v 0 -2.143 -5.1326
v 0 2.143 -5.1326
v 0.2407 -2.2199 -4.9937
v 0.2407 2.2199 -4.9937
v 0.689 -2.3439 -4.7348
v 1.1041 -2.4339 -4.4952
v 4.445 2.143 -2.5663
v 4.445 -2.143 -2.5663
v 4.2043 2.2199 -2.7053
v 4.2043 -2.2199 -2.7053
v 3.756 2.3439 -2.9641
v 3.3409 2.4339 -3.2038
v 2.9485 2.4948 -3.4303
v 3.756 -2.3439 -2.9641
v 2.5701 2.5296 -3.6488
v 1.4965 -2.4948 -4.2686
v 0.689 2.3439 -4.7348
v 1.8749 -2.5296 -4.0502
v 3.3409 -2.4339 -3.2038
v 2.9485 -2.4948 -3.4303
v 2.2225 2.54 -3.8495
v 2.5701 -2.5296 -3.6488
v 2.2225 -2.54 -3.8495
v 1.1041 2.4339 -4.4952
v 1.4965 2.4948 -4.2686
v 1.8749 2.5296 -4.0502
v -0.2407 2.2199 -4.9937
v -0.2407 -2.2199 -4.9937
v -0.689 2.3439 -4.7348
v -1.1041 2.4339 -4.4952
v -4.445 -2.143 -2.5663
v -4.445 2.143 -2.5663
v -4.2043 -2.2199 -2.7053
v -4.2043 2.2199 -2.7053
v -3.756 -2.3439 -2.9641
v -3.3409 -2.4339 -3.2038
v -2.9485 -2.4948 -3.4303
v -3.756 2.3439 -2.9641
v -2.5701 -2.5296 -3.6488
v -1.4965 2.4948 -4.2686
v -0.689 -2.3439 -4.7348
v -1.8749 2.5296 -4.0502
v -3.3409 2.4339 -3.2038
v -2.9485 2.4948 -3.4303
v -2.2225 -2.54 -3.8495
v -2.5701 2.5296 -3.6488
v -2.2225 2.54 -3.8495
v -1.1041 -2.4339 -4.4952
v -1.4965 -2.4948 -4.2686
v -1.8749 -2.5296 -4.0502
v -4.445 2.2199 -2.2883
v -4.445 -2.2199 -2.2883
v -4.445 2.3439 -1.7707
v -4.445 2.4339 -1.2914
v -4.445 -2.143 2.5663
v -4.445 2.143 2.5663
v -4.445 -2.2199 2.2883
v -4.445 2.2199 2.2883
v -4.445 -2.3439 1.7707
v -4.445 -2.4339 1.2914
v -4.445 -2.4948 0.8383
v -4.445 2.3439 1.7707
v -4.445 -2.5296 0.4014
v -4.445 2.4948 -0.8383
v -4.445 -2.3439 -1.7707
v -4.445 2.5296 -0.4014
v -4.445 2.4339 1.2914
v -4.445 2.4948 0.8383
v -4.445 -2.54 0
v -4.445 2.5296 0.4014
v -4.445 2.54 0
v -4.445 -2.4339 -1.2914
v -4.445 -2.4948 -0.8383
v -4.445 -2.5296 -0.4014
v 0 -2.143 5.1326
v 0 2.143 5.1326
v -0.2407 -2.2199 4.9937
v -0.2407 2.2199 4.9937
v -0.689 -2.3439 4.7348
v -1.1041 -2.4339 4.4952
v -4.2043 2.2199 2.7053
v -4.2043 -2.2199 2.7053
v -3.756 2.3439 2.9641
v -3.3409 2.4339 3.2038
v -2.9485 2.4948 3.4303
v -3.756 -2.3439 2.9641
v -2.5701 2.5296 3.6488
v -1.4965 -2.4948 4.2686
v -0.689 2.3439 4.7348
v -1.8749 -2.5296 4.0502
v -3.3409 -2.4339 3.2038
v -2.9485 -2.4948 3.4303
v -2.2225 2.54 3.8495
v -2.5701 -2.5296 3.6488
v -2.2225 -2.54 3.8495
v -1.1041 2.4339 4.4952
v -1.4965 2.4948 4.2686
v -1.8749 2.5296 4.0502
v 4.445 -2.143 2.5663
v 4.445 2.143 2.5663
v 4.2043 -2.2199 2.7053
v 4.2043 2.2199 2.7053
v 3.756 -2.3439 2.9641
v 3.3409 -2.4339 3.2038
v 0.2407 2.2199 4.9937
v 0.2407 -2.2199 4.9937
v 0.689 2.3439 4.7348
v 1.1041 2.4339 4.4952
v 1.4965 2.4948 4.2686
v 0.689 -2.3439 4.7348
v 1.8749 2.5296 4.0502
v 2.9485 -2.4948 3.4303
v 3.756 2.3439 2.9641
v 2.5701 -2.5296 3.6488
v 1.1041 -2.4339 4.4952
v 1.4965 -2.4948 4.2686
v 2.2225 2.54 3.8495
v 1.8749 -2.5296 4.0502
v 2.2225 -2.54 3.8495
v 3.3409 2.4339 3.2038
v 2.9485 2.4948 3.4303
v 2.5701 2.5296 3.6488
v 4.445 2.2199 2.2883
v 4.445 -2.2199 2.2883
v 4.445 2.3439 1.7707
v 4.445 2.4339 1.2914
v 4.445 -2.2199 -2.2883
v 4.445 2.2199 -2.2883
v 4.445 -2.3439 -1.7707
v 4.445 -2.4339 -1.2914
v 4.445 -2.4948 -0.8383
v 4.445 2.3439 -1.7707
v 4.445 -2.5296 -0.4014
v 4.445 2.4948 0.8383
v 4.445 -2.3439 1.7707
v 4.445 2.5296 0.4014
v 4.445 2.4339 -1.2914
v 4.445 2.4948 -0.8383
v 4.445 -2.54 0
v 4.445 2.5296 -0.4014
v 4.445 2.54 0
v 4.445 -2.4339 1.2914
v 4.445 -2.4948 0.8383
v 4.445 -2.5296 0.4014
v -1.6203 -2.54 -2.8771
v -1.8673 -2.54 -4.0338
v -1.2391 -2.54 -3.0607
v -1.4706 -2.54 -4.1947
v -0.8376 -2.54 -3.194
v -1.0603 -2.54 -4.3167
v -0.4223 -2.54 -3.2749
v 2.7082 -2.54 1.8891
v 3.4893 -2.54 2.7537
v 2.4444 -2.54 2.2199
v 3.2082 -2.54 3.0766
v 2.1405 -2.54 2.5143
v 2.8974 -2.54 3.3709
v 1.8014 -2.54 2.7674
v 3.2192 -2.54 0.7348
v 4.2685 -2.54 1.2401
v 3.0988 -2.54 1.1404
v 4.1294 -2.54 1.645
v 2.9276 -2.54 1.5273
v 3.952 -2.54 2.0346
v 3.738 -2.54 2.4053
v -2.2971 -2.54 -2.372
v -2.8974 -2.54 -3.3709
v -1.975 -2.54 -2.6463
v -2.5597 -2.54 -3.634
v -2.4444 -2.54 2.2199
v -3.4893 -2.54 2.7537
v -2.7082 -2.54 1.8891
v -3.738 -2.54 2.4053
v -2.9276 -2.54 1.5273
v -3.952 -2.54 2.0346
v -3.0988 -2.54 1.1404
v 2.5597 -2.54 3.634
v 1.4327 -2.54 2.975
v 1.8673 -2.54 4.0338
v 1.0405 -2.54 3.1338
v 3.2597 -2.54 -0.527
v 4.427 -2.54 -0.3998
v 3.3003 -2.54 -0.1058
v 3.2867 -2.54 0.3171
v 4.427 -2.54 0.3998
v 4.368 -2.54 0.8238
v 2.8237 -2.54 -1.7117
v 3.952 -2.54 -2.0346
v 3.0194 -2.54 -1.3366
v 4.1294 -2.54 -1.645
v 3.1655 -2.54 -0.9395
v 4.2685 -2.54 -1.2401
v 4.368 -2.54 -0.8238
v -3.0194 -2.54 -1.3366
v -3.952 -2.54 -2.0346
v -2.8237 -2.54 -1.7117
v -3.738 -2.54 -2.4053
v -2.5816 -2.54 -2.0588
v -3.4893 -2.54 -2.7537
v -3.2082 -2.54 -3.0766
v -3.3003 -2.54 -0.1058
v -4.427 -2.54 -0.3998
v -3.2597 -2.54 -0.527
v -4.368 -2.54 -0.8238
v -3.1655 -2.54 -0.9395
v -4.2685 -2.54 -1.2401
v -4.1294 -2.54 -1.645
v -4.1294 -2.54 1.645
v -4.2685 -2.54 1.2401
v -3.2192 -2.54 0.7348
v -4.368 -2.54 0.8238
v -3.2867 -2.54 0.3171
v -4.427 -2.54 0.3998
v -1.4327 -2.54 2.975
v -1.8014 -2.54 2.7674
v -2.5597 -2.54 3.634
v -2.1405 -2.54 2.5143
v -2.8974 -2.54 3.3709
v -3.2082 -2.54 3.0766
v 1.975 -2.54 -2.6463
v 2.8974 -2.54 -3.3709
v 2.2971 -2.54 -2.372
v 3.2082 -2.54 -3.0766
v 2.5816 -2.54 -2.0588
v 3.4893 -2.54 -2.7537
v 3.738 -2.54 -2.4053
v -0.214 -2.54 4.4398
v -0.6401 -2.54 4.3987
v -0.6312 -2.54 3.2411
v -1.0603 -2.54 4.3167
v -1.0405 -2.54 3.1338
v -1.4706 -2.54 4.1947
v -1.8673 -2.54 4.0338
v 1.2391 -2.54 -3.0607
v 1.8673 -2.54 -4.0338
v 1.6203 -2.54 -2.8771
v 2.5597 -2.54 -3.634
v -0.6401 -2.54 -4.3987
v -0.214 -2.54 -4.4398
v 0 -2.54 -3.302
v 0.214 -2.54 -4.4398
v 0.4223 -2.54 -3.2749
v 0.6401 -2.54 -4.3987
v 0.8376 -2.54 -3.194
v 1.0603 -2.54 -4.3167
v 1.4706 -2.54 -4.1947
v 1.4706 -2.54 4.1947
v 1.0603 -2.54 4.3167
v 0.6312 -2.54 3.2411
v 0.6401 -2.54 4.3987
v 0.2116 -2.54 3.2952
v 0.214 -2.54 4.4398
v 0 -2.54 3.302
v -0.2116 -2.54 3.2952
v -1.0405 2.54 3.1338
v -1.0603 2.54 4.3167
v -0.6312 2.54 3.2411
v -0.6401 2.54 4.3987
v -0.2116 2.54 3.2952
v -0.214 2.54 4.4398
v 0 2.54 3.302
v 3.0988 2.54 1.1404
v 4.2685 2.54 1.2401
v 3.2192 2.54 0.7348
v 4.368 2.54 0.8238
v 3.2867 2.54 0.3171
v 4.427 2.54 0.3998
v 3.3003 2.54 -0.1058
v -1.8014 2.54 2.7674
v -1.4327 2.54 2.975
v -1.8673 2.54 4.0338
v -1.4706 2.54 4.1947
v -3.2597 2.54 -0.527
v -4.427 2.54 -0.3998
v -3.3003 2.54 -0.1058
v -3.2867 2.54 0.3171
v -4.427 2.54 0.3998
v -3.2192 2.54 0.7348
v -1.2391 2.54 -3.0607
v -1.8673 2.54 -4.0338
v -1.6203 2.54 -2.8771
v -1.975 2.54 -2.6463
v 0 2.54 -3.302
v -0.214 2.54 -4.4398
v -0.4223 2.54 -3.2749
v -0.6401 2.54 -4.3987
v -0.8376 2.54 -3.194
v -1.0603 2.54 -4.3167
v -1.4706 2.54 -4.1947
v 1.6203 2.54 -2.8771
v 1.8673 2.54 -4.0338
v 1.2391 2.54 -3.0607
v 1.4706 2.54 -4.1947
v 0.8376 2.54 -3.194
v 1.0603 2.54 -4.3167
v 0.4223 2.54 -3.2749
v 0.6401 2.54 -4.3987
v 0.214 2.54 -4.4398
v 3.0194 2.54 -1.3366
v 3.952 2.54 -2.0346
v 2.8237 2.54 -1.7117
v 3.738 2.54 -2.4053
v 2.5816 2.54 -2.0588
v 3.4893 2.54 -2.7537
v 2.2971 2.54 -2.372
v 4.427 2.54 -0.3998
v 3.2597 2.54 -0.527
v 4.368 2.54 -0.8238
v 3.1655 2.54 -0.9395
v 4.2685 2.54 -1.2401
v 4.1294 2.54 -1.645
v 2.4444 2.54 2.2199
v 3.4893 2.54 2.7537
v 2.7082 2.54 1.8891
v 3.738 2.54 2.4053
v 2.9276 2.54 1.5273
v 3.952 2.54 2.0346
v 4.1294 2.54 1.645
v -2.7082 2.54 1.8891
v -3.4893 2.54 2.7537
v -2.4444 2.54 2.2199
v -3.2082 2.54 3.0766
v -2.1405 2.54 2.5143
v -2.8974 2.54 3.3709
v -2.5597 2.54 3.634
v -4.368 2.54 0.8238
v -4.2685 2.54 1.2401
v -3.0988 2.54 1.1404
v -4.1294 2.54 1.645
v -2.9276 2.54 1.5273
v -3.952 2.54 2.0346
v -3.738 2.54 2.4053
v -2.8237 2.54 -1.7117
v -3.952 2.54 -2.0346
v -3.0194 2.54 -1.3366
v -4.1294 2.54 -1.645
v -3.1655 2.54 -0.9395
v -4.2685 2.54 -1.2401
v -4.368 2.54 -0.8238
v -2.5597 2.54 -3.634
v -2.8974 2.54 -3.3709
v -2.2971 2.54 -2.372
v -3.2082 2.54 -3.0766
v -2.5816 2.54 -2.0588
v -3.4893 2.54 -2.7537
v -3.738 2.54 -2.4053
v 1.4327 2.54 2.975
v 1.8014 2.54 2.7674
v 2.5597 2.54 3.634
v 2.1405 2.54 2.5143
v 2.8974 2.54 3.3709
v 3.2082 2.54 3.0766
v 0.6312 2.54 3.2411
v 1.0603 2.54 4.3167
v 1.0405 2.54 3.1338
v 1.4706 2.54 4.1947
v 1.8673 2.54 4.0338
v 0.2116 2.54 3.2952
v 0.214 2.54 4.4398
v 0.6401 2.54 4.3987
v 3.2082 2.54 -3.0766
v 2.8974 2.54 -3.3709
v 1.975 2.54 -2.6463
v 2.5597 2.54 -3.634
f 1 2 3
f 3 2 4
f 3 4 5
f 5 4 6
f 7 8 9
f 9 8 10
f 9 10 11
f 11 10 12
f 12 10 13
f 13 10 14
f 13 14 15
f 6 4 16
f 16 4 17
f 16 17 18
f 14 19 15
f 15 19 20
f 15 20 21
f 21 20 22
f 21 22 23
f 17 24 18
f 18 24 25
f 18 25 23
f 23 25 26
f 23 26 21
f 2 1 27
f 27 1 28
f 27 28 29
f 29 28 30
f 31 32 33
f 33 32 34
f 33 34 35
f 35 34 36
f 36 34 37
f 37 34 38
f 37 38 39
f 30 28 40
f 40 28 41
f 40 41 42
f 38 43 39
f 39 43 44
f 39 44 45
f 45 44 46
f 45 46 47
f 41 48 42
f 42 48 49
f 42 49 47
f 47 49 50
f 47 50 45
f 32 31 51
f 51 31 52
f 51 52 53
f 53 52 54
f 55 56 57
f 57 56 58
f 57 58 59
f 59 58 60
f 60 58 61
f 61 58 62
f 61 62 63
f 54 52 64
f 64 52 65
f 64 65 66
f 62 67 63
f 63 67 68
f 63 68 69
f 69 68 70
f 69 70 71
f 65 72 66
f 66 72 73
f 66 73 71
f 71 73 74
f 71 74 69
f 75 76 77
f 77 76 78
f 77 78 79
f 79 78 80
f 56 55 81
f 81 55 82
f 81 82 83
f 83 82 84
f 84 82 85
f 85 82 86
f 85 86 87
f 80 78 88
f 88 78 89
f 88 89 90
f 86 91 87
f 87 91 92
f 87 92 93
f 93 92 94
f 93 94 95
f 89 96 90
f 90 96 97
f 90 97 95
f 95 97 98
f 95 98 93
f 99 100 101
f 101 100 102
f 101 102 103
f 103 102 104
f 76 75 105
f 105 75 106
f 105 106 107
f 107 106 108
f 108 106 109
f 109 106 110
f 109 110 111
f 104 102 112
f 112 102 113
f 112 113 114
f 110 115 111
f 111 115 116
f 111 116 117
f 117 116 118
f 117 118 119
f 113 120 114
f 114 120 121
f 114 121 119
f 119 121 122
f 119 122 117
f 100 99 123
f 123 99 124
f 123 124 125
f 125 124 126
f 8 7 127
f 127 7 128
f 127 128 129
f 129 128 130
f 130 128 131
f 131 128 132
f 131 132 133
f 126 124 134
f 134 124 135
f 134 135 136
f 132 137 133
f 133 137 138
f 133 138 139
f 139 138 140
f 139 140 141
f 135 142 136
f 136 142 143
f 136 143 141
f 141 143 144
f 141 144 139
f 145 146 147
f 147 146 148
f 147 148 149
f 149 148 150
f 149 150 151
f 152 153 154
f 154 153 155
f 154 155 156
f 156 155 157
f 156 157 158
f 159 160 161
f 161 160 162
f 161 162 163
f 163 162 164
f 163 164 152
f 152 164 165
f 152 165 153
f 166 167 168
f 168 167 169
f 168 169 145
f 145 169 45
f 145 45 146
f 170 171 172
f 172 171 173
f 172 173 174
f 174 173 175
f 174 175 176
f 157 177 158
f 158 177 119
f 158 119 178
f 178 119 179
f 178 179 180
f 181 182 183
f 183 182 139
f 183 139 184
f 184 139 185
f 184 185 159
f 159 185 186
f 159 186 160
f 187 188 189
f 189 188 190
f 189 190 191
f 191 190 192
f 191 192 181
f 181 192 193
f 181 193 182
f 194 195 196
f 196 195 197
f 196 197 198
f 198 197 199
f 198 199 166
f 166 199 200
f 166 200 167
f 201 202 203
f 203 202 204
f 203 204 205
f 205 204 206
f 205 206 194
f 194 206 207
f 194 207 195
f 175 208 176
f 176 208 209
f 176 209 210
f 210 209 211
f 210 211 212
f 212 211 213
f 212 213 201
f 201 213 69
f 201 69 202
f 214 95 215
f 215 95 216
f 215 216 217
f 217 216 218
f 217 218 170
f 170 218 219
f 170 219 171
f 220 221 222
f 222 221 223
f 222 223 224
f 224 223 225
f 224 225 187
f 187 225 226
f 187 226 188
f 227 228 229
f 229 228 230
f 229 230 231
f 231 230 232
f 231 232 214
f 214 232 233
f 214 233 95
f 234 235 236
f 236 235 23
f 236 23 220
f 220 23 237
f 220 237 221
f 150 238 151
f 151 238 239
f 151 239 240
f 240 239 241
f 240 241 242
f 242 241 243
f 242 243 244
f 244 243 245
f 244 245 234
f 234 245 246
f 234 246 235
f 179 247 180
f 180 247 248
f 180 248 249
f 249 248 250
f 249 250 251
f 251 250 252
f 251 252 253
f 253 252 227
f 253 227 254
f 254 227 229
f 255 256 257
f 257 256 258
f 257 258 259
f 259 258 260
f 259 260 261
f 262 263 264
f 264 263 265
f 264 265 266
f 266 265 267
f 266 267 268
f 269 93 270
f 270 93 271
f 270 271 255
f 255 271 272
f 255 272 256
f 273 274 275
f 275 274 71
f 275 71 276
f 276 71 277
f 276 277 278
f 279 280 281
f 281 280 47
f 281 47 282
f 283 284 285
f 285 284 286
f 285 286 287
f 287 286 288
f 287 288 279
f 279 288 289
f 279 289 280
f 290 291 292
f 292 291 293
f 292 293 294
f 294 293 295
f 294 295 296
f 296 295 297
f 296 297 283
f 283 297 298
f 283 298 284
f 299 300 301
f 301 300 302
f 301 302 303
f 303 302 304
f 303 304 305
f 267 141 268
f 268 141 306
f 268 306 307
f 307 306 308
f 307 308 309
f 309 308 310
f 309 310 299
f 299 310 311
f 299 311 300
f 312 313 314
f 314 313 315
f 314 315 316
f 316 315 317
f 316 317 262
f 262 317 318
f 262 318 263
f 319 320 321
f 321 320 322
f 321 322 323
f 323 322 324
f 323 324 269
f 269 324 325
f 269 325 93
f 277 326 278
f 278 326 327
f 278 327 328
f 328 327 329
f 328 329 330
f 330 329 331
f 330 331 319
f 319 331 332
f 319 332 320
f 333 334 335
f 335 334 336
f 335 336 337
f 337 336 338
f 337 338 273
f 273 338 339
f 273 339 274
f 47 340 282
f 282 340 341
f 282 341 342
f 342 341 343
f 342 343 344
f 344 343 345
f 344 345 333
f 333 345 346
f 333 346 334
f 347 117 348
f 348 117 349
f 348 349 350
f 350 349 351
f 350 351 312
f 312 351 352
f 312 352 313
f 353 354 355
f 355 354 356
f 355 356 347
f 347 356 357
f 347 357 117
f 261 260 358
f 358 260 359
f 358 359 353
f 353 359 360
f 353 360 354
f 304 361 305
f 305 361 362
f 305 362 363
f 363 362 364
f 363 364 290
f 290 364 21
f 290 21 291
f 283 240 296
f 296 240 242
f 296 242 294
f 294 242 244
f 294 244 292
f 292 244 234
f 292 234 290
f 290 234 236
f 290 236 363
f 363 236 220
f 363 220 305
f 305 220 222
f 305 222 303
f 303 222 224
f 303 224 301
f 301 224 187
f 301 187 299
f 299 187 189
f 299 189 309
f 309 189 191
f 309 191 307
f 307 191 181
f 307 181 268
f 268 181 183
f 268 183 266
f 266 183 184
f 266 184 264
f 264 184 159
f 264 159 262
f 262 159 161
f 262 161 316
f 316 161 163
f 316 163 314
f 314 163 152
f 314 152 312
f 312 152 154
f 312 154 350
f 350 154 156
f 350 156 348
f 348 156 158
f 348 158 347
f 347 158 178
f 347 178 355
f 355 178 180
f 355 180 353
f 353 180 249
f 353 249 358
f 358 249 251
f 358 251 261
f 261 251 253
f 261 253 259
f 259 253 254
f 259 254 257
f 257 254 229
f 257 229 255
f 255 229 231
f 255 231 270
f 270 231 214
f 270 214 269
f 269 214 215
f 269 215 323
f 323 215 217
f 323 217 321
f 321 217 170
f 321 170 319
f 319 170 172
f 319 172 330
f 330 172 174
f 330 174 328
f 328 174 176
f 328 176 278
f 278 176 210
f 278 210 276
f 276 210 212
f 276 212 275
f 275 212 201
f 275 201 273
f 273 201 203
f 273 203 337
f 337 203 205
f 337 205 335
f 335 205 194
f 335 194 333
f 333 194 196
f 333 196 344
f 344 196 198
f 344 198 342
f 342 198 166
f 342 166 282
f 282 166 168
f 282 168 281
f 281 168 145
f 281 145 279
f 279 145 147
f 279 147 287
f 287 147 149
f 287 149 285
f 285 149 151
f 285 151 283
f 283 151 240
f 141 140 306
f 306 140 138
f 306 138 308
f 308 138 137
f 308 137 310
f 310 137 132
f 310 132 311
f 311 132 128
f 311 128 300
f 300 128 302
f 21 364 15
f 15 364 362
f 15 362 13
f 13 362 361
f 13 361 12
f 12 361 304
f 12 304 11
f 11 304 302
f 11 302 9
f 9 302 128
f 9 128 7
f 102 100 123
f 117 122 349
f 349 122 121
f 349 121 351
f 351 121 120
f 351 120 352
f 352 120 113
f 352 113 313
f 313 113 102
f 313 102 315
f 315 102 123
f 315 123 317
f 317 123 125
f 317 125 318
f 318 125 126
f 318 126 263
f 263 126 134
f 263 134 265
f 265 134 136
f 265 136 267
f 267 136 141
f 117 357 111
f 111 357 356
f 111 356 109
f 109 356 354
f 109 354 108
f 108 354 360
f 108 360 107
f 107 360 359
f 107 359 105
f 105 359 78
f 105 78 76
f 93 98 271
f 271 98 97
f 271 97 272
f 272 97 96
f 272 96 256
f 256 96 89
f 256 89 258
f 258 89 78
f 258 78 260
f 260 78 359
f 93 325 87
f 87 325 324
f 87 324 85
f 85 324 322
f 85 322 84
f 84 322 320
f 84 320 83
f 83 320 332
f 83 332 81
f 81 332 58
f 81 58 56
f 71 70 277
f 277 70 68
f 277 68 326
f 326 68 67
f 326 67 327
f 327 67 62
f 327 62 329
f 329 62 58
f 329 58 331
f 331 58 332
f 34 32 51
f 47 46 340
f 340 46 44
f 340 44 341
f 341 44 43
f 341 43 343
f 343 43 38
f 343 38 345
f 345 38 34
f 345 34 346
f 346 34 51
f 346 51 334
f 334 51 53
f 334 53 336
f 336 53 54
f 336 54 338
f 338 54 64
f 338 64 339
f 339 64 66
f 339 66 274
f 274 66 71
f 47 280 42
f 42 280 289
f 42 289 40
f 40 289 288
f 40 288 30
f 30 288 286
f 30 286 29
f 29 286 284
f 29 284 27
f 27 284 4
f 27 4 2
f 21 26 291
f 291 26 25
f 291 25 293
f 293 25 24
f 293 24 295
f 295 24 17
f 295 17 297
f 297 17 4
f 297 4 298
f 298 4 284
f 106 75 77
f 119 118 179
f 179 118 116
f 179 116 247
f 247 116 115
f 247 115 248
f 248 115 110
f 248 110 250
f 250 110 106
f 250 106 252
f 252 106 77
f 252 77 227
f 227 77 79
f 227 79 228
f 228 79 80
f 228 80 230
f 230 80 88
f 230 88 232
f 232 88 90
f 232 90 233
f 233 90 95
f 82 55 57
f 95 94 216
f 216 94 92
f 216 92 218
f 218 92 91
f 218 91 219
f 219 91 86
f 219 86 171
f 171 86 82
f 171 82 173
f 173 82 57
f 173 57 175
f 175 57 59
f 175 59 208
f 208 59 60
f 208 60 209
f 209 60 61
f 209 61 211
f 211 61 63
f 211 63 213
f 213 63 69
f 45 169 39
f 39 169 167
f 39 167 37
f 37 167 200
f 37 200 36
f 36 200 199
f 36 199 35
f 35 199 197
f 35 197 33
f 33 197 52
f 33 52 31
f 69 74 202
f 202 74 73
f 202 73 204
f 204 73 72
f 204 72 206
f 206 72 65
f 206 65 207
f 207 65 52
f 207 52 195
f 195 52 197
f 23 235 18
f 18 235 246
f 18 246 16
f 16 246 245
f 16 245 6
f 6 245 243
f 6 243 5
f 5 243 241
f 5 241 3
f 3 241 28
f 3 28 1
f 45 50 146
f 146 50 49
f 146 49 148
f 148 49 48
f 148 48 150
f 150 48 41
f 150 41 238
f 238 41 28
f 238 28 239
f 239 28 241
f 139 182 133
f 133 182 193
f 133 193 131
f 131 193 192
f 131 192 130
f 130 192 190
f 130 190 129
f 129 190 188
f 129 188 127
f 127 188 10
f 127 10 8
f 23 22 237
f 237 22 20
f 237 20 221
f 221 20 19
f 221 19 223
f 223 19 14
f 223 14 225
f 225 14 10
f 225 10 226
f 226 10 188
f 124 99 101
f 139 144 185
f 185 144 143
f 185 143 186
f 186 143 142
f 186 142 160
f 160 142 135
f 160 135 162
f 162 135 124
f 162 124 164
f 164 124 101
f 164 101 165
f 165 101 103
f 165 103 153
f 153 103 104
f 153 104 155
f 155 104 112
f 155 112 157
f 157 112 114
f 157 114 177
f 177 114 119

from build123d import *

# Parameters (mm, degrees)
SKETCH1_R           = 3.302
BOSS_EXTRUDE1_DEPTH = 2.54
SKETCH2_OUTSIDE_W   = 31.388
SKETCH2_OUTSIDE_H   = 32.764
SKETCH2_OUTSIDE_R   = 4.445
CUT_EXTRUDE1_DEPTH  = 5.08
CUT_EXTRUDE1_DRAFT  = -60
SKETCH3_OUTSIDE_W   = 31.388
SKETCH3_OUTSIDE_H   = 32.764
SKETCH3_OUTSIDE_R   = 4.445
CUT_EXTRUDE2_DEPTH  = 5.08
CUT_EXTRUDE2_DRAFT  = -60


with BuildPart() as part:
    # Sketch1 → Boss-Extrude1 (new, symmetric)
    with BuildSketch(Plane(origin=(0, 0, 0), x_dir=(1, 0, 0), z_dir=(0, 1, 0))):
        Polygon((0, 5.132643893), (-4.445, 2.566321947), (-4.445, -2.566321947), (0, -5.132643893), (4.445, -2.566321947), (4.445, 2.566321947), align=None)
        with Locations(Location((0, 0, 0), (0, 0, 270))):
            Circle(SKETCH1_R, mode=Mode.SUBTRACT)
    extrude(amount=BOSS_EXTRUDE1_DEPTH, both=True)


with BuildPart() as cut_extrude1_tool:
    # Sketch2 outside → Cut-Extrude1 (with draft: the straight prism first)
    with BuildSketch(Plane(origin=(0, 2.54, 0), x_dir=(1, 0, 0), z_dir=(0, 1, 0))):
        Rectangle(SKETCH2_OUTSIDE_W, SKETCH2_OUTSIDE_H)
        Circle(SKETCH2_OUTSIDE_R, mode=Mode.SUBTRACT)
    extrude(amount=-CUT_EXTRUDE1_DEPTH)
    # Cut-Extrude1: the draft: its side faces are tilted about the plane it starts from
    cut_extrude1_sides = [cut_extrude1_tool.faces().sort_by_distance(p)[0] for p in [
        (0, 0, 16.382),
        (15.694, 0, 0),
        (0, 0, -16.382),
        (-15.694, 0, 0),
        (-4.445, 0, 0),
    ]]
    draft(cut_extrude1_sides, Plane(origin=(0, 2.54, 0), x_dir=(1, 0, 0), z_dir=(0, 1, 0)), CUT_EXTRUDE1_DRAFT)


with BuildPart() as part_1:
    add(part.part)

    # Cut-Extrude1: cut by cut_extrude1_tool
    add(cut_extrude1_tool.part, mode=Mode.SUBTRACT)


with BuildPart() as cut_extrude2_tool:
    # Sketch3 outside → Cut-Extrude2 (with draft: the straight prism first)
    with BuildSketch(Plane(origin=(0, -2.54, 0), x_dir=(-1, 0, 0), z_dir=(0, -1, 0))):
        Rectangle(SKETCH3_OUTSIDE_W, SKETCH3_OUTSIDE_H)
        Circle(SKETCH3_OUTSIDE_R, mode=Mode.SUBTRACT)
    extrude(amount=-CUT_EXTRUDE2_DEPTH)
    # Cut-Extrude2: the draft: its side faces are tilted about the plane it starts from
    cut_extrude2_sides = [cut_extrude2_tool.faces().sort_by_distance(p)[0] for p in [
        (0, 0, 16.382),
        (-15.694, 0, 0),
        (0, 0, -16.382),
        (15.694, 0, 0),
        (4.445, 0, 0),
    ]]
    draft(cut_extrude2_sides, Plane(origin=(0, -2.54, 0), x_dir=(-1, 0, 0), z_dir=(0, -1, 0)), CUT_EXTRUDE2_DRAFT)


with BuildPart() as part_2:
    add(part_1.part)

    # Cut-Extrude2: cut by cut_extrude2_tool
    add(cut_extrude2_tool.part, mode=Mode.SUBTRACT)


solid = part_2.part
